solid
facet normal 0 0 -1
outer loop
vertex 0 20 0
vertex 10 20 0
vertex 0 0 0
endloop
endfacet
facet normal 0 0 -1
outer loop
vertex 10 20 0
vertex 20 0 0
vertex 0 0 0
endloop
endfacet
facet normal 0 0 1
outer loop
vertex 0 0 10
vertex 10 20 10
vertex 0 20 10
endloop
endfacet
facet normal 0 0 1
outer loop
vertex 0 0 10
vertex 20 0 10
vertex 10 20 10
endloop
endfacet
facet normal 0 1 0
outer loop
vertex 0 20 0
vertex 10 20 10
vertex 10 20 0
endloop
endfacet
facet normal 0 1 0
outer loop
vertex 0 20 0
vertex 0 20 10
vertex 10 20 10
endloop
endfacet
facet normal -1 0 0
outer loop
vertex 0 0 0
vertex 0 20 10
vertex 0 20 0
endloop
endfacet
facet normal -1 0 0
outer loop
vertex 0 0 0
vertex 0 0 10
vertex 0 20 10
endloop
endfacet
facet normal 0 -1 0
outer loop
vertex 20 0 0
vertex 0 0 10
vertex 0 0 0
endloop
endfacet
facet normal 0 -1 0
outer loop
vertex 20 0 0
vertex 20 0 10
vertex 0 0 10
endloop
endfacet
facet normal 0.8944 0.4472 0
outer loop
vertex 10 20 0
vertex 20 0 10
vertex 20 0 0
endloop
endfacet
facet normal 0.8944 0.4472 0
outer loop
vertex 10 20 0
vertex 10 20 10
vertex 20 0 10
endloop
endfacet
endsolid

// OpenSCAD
module pyramid(base_size, height) {
  linear_extrude(height = height)
  polygon(points = [[0,0], [base_size, 0], [base_size/2, base_size], [0, base_size]]);
}

pyramid(base_size = 20, height = 10);
